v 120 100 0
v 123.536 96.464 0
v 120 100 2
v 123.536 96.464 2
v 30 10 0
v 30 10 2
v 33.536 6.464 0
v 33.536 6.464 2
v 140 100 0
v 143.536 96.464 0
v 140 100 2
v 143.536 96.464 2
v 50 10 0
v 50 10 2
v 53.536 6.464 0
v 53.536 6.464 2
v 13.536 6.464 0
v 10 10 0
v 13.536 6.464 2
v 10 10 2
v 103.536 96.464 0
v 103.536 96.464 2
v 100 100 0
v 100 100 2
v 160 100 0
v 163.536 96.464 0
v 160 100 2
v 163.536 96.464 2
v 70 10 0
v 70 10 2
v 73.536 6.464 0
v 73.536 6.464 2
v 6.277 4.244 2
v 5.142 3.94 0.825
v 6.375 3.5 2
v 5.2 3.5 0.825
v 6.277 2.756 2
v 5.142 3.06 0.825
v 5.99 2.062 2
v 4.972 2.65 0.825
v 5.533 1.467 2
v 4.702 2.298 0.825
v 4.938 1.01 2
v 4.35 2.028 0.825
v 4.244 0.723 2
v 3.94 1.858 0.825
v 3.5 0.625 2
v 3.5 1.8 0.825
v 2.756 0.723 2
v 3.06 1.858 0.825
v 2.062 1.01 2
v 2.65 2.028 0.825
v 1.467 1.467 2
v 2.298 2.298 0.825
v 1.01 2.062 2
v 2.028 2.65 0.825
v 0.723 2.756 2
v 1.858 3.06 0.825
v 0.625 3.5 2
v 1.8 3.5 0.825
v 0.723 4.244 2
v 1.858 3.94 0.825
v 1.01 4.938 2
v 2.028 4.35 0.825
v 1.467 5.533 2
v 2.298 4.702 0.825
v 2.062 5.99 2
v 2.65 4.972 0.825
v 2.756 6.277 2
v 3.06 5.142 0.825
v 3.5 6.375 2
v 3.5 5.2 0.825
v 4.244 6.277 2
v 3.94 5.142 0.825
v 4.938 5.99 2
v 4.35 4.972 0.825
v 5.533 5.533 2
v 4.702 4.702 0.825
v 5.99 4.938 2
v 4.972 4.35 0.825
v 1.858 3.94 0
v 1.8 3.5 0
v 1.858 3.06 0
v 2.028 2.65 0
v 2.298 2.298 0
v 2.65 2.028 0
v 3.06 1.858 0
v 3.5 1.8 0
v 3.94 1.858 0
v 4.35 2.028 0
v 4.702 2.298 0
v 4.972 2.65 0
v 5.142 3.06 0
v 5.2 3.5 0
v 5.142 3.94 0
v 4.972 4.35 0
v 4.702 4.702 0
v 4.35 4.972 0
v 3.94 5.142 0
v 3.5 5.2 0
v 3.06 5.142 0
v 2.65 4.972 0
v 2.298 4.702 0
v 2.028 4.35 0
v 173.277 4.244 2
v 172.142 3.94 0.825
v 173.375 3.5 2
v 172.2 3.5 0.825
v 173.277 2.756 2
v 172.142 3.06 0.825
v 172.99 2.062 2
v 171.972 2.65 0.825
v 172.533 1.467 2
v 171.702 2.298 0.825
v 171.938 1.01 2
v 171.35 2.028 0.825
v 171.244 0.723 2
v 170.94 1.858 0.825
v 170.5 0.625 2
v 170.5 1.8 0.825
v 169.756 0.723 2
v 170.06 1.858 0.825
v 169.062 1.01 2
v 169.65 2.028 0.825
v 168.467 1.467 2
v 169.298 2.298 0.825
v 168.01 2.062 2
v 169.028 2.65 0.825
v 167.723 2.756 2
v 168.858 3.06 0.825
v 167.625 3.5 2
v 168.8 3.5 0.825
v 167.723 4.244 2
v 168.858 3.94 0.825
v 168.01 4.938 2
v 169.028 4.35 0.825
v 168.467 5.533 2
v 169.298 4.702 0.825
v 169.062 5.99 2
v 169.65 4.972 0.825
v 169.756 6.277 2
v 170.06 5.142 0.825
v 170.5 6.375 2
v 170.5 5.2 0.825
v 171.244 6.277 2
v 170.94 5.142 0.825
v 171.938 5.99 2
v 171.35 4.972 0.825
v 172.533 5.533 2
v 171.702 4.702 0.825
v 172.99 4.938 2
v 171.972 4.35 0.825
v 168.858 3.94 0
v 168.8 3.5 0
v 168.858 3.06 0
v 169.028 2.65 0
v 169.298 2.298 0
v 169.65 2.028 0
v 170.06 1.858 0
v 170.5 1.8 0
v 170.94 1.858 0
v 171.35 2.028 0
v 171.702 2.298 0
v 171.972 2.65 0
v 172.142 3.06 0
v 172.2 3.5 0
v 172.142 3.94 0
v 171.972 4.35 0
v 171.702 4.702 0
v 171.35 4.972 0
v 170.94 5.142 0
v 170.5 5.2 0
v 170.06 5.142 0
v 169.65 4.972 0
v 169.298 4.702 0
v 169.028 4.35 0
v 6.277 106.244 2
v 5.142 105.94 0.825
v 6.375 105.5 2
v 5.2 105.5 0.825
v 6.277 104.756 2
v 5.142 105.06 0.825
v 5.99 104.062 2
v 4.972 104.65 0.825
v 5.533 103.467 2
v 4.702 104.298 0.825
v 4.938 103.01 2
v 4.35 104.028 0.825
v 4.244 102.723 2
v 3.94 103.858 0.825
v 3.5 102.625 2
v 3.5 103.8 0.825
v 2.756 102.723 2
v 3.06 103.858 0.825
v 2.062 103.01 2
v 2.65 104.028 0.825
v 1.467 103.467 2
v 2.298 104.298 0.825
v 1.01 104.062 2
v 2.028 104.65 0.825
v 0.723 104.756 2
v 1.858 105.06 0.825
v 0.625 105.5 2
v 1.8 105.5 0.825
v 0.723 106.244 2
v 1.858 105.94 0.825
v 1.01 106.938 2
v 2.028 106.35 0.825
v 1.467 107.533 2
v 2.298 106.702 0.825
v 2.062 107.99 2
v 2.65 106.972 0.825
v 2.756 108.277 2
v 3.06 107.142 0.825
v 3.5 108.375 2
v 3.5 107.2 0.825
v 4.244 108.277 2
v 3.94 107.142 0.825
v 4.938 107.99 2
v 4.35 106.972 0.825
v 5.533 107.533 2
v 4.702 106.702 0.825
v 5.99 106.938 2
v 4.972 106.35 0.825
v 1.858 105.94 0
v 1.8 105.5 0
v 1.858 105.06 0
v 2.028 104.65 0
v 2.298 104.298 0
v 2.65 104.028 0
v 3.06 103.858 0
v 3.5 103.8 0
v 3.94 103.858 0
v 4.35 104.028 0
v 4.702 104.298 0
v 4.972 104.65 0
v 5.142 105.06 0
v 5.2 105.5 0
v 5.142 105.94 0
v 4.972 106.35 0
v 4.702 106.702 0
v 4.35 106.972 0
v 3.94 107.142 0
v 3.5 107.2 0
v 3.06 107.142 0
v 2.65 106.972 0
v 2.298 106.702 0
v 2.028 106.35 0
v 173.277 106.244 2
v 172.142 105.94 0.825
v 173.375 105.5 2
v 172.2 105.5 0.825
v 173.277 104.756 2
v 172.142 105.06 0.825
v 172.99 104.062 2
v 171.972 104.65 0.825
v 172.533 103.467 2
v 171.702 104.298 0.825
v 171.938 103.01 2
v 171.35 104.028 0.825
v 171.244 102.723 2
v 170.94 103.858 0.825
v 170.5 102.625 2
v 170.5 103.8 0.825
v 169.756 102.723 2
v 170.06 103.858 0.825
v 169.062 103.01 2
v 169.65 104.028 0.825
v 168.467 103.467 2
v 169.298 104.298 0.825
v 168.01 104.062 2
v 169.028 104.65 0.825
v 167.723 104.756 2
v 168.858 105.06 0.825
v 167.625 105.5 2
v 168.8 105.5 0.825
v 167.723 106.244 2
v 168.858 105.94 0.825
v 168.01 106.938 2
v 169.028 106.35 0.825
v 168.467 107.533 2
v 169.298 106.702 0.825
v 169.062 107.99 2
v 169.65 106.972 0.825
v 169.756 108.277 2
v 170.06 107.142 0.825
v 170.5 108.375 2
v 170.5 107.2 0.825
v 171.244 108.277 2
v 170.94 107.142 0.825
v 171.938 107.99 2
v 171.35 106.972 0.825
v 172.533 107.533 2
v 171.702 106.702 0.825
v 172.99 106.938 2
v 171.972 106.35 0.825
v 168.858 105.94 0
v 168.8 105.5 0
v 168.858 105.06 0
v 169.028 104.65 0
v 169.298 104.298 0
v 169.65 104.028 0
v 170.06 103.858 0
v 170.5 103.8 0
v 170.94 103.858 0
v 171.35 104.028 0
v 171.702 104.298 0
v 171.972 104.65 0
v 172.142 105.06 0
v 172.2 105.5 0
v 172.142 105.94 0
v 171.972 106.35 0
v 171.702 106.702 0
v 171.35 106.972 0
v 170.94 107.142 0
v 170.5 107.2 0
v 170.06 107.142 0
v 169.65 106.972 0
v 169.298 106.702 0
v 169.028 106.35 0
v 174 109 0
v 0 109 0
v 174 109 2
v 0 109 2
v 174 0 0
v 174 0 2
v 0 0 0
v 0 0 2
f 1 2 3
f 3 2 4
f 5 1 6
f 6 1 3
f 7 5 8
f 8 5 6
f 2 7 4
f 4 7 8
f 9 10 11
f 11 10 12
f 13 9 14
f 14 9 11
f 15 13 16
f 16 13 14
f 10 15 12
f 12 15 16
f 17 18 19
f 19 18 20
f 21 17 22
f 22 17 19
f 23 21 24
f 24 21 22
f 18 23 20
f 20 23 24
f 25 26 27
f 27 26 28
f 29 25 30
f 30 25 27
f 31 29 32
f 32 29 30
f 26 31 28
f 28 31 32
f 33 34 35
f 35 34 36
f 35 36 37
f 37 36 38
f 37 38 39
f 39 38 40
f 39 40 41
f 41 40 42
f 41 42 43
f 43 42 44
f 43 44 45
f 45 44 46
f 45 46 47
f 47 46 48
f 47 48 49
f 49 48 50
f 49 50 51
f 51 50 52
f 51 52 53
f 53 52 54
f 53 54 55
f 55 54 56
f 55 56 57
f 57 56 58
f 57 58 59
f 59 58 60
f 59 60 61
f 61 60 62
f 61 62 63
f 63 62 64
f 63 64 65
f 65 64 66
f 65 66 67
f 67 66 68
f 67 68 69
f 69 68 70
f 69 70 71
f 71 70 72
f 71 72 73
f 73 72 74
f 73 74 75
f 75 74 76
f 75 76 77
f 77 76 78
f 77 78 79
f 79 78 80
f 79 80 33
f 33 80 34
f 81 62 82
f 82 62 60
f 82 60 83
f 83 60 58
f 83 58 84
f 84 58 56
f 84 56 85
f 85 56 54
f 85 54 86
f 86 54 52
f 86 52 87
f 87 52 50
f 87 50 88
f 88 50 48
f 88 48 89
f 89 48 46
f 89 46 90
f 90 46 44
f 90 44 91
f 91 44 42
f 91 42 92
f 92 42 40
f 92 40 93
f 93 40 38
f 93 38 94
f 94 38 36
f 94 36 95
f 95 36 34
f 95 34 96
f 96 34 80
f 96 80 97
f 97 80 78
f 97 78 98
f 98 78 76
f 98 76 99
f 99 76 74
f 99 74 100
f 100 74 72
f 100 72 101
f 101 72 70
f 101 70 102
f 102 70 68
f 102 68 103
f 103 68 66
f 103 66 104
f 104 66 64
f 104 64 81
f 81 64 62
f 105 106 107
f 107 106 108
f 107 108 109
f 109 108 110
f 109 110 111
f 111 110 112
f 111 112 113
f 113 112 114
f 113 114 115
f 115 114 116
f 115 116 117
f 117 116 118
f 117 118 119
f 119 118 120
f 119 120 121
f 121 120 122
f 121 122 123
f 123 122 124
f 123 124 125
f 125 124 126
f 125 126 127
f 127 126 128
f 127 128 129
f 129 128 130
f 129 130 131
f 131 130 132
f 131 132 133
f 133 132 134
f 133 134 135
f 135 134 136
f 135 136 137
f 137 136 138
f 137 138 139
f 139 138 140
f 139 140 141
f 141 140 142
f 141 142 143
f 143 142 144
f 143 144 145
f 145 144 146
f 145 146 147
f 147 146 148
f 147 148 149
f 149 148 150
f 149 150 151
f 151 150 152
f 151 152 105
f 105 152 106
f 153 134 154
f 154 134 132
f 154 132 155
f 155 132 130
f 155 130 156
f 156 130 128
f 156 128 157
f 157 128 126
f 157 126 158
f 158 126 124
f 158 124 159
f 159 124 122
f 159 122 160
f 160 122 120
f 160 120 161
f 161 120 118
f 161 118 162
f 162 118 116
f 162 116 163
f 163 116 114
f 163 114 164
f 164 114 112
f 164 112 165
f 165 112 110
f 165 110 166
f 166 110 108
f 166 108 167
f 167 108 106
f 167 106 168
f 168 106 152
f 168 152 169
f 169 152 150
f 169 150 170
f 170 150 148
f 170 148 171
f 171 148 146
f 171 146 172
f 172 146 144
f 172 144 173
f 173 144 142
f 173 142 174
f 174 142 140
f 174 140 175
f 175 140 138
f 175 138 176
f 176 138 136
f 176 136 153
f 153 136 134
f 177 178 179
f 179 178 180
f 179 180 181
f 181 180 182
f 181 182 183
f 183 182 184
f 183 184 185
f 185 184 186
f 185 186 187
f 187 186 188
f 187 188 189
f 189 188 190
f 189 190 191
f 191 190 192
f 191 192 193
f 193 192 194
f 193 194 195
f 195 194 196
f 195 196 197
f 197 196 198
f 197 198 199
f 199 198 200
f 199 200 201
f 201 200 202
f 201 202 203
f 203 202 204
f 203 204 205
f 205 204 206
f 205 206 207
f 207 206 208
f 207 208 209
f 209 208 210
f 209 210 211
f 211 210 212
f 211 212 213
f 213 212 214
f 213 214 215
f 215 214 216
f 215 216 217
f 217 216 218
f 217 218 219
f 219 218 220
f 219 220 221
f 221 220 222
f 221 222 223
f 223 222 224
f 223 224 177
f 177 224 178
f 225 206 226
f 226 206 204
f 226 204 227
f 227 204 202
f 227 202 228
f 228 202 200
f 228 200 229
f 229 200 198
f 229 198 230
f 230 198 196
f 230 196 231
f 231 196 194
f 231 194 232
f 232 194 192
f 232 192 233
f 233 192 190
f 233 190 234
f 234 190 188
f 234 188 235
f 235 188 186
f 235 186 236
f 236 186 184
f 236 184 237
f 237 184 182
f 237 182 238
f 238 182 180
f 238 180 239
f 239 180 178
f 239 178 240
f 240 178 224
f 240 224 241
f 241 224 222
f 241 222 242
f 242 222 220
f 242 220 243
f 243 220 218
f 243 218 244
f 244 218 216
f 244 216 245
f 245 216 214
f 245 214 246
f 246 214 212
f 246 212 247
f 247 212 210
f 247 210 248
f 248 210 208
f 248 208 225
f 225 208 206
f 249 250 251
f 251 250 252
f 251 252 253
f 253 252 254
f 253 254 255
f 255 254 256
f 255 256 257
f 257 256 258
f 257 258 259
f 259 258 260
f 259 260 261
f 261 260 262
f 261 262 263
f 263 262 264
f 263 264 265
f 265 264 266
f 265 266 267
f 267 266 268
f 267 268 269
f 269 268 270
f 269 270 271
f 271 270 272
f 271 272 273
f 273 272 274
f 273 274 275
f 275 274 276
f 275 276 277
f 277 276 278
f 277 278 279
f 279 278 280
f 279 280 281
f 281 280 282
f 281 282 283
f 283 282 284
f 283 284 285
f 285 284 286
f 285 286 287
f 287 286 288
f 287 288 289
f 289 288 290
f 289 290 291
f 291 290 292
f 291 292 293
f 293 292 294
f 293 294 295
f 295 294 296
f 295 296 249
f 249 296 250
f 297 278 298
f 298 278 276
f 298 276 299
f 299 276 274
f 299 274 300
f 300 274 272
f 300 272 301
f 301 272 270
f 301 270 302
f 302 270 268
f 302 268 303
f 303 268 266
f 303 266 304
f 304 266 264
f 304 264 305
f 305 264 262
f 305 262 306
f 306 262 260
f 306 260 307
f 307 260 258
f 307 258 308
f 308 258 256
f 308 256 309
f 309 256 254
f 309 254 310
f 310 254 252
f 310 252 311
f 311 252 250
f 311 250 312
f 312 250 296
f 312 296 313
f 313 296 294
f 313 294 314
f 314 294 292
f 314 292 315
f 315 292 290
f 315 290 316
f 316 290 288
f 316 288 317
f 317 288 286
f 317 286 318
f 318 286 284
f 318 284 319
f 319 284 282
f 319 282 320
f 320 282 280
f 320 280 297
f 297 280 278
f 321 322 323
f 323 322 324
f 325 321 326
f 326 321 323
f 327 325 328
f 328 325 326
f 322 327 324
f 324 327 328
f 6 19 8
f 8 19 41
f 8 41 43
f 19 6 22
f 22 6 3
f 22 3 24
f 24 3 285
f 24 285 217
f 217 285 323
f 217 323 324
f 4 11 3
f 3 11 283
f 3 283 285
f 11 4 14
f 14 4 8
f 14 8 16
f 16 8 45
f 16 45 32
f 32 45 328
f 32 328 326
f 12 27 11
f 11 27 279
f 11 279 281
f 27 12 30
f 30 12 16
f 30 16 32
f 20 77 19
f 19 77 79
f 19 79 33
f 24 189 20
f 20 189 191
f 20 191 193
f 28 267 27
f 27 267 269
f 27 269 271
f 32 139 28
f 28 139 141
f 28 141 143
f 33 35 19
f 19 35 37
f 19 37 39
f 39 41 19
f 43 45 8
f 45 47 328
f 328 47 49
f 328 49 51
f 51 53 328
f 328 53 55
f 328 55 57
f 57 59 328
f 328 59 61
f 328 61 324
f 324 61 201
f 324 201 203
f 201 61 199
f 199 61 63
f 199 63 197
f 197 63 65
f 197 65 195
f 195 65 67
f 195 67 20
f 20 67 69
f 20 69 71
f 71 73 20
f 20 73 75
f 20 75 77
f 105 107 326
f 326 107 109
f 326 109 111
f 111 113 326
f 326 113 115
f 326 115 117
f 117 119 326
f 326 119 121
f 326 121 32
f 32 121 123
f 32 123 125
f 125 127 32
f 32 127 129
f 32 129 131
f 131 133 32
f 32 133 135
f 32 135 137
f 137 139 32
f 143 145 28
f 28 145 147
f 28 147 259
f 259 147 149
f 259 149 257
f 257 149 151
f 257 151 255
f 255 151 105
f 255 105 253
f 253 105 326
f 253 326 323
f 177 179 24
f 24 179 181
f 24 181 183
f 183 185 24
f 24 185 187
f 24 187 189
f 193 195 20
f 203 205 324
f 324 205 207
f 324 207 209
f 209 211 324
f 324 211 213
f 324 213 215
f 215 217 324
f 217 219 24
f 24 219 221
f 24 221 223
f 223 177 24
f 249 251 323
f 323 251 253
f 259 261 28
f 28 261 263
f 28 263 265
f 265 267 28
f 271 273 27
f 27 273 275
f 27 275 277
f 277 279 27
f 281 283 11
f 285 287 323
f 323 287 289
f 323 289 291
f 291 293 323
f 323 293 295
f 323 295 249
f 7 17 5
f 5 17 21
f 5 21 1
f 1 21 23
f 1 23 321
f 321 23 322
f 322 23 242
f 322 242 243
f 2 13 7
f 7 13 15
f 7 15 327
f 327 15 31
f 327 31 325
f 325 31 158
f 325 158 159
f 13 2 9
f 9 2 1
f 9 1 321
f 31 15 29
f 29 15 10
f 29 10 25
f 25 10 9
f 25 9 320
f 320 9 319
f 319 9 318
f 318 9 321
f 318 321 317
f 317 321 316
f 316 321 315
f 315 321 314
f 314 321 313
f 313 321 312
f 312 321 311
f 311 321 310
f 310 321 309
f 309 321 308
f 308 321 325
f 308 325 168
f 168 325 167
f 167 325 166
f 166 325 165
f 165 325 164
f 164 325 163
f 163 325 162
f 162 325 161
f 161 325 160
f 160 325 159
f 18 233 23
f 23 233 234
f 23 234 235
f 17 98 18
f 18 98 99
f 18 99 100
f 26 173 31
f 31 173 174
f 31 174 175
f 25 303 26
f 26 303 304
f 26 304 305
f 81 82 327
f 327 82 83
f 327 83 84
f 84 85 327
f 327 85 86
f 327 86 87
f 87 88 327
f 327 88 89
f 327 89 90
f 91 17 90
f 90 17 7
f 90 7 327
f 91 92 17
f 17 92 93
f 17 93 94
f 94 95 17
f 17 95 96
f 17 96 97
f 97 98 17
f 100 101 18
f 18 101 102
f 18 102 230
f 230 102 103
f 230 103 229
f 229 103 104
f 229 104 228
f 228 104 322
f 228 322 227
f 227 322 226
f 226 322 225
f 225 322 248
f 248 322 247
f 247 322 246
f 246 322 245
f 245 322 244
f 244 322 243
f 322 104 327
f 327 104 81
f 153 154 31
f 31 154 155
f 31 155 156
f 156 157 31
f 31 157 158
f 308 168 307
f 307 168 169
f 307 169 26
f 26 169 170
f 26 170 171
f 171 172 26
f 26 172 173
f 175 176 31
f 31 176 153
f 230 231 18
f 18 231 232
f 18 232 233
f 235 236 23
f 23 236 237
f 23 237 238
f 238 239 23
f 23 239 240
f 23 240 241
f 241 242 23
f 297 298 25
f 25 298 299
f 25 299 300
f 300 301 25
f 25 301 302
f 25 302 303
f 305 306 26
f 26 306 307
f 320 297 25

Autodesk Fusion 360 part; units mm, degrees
sketch "Sketch1" plane through (0, 0, 0) normal (0, 0, 1) x (1, 0, 0)
  line L0 (0, 0) -> (174, 0)
  line L1 (174, 0) -> (174, 109)
  line L2 (174, 109) -> (0, 109)
  line L3 (0, 109) -> (0, 0)
  dimension "d1" = 174
  dimension "d2" = 109
extrude "Extrude1" add sketch "Sketch1" along normal blind 2
sketch "Sketch2" plane through (0, 0, 2) normal (0, 0, 1) x (-1, 0, 0)
  line L0 (0, -109) -> (0, 0)
  line L1 (0, 0) -> (-174, 0)
  line L2 (-174, 0) -> (-174, -109)
  line L3 (-174, -109) -> (0, -109)
  point P0 (-3.5, -3.5)
  point P1 (-3.5, -105.5)
  point P2 (-170.5, -105.5)
  point P3 (-170.5, -3.5)
hole "Hole1" at (170.5, 3.5, 2) at (3.5, 105.5, 2) at (3.5, 3.5, 2) at (170.5, 105.5, 2) direction (0, 0, -1) diameter 3.4 depth 6 tip angle 180 countersink diameter 5.75 countersink angle 90
sketch "Sketch5" plane through (0, 0, 2) normal (0, 0, 1) x (-1, 0, 0)
  circle A0 centre (-3.5, -3.5) radius 2.875
  circle A1 centre (-170.5, -3.5) radius 2.875
  circle A2 centre (-3.5, -105.5) radius 2.875
  circle A3 centre (-170.5, -105.5) radius 2.875
  line L0 (0, -109) -> (0, 0)
  line L1 (0, 0) -> (-174, 0)
  line L2 (-174, 0) -> (-174, -109)
  line L3 (-174, -109) -> (0, -109)
  line L4 (-10, -10) -> (-100, -100)
  line L5 (-100, -100) -> (-103.5355, -96.4645)
  line L6 (-103.5355, -96.4645) -> (-13.5355, -6.4645)
  line L7 (-13.5355, -6.4645) -> (-10, -10)
  line L8 (-30, -10) -> (-120, -100)
  line L9 (-123.5355, -96.4645) -> (-33.5355, -6.4645)
  line L10 (-33.5355, -6.4645) -> (-30, -10)
  line L11 (-120, -100) -> (-123.5355, -96.4645)
  line L12 (-50, -10) -> (-140, -100)
  line L13 (-143.5355, -96.4645) -> (-53.5355, -6.4645)
  line L14 (-53.5355, -6.4645) -> (-50, -10)
  line L15 (-140, -100) -> (-143.5355, -96.4645)
  line L16 (-70, -10) -> (-160, -100)
  line L17 (-163.5355, -96.4645) -> (-73.5355, -6.4645)
  line L18 (-73.5355, -6.4645) -> (-70, -10)
  line L19 (-160, -100) -> (-163.5355, -96.4645)
  dimension "d17" = 5
  dimension "d20" = -60
  dimension "d21" = 0
extrude "Extrude2" cut sketch "Sketch5" against normal blind 40 contours L4 L5 L6 L7 | L8 L9 L10 L11 | L12 L13 L14 L15 | L16 L17 L18 L19
